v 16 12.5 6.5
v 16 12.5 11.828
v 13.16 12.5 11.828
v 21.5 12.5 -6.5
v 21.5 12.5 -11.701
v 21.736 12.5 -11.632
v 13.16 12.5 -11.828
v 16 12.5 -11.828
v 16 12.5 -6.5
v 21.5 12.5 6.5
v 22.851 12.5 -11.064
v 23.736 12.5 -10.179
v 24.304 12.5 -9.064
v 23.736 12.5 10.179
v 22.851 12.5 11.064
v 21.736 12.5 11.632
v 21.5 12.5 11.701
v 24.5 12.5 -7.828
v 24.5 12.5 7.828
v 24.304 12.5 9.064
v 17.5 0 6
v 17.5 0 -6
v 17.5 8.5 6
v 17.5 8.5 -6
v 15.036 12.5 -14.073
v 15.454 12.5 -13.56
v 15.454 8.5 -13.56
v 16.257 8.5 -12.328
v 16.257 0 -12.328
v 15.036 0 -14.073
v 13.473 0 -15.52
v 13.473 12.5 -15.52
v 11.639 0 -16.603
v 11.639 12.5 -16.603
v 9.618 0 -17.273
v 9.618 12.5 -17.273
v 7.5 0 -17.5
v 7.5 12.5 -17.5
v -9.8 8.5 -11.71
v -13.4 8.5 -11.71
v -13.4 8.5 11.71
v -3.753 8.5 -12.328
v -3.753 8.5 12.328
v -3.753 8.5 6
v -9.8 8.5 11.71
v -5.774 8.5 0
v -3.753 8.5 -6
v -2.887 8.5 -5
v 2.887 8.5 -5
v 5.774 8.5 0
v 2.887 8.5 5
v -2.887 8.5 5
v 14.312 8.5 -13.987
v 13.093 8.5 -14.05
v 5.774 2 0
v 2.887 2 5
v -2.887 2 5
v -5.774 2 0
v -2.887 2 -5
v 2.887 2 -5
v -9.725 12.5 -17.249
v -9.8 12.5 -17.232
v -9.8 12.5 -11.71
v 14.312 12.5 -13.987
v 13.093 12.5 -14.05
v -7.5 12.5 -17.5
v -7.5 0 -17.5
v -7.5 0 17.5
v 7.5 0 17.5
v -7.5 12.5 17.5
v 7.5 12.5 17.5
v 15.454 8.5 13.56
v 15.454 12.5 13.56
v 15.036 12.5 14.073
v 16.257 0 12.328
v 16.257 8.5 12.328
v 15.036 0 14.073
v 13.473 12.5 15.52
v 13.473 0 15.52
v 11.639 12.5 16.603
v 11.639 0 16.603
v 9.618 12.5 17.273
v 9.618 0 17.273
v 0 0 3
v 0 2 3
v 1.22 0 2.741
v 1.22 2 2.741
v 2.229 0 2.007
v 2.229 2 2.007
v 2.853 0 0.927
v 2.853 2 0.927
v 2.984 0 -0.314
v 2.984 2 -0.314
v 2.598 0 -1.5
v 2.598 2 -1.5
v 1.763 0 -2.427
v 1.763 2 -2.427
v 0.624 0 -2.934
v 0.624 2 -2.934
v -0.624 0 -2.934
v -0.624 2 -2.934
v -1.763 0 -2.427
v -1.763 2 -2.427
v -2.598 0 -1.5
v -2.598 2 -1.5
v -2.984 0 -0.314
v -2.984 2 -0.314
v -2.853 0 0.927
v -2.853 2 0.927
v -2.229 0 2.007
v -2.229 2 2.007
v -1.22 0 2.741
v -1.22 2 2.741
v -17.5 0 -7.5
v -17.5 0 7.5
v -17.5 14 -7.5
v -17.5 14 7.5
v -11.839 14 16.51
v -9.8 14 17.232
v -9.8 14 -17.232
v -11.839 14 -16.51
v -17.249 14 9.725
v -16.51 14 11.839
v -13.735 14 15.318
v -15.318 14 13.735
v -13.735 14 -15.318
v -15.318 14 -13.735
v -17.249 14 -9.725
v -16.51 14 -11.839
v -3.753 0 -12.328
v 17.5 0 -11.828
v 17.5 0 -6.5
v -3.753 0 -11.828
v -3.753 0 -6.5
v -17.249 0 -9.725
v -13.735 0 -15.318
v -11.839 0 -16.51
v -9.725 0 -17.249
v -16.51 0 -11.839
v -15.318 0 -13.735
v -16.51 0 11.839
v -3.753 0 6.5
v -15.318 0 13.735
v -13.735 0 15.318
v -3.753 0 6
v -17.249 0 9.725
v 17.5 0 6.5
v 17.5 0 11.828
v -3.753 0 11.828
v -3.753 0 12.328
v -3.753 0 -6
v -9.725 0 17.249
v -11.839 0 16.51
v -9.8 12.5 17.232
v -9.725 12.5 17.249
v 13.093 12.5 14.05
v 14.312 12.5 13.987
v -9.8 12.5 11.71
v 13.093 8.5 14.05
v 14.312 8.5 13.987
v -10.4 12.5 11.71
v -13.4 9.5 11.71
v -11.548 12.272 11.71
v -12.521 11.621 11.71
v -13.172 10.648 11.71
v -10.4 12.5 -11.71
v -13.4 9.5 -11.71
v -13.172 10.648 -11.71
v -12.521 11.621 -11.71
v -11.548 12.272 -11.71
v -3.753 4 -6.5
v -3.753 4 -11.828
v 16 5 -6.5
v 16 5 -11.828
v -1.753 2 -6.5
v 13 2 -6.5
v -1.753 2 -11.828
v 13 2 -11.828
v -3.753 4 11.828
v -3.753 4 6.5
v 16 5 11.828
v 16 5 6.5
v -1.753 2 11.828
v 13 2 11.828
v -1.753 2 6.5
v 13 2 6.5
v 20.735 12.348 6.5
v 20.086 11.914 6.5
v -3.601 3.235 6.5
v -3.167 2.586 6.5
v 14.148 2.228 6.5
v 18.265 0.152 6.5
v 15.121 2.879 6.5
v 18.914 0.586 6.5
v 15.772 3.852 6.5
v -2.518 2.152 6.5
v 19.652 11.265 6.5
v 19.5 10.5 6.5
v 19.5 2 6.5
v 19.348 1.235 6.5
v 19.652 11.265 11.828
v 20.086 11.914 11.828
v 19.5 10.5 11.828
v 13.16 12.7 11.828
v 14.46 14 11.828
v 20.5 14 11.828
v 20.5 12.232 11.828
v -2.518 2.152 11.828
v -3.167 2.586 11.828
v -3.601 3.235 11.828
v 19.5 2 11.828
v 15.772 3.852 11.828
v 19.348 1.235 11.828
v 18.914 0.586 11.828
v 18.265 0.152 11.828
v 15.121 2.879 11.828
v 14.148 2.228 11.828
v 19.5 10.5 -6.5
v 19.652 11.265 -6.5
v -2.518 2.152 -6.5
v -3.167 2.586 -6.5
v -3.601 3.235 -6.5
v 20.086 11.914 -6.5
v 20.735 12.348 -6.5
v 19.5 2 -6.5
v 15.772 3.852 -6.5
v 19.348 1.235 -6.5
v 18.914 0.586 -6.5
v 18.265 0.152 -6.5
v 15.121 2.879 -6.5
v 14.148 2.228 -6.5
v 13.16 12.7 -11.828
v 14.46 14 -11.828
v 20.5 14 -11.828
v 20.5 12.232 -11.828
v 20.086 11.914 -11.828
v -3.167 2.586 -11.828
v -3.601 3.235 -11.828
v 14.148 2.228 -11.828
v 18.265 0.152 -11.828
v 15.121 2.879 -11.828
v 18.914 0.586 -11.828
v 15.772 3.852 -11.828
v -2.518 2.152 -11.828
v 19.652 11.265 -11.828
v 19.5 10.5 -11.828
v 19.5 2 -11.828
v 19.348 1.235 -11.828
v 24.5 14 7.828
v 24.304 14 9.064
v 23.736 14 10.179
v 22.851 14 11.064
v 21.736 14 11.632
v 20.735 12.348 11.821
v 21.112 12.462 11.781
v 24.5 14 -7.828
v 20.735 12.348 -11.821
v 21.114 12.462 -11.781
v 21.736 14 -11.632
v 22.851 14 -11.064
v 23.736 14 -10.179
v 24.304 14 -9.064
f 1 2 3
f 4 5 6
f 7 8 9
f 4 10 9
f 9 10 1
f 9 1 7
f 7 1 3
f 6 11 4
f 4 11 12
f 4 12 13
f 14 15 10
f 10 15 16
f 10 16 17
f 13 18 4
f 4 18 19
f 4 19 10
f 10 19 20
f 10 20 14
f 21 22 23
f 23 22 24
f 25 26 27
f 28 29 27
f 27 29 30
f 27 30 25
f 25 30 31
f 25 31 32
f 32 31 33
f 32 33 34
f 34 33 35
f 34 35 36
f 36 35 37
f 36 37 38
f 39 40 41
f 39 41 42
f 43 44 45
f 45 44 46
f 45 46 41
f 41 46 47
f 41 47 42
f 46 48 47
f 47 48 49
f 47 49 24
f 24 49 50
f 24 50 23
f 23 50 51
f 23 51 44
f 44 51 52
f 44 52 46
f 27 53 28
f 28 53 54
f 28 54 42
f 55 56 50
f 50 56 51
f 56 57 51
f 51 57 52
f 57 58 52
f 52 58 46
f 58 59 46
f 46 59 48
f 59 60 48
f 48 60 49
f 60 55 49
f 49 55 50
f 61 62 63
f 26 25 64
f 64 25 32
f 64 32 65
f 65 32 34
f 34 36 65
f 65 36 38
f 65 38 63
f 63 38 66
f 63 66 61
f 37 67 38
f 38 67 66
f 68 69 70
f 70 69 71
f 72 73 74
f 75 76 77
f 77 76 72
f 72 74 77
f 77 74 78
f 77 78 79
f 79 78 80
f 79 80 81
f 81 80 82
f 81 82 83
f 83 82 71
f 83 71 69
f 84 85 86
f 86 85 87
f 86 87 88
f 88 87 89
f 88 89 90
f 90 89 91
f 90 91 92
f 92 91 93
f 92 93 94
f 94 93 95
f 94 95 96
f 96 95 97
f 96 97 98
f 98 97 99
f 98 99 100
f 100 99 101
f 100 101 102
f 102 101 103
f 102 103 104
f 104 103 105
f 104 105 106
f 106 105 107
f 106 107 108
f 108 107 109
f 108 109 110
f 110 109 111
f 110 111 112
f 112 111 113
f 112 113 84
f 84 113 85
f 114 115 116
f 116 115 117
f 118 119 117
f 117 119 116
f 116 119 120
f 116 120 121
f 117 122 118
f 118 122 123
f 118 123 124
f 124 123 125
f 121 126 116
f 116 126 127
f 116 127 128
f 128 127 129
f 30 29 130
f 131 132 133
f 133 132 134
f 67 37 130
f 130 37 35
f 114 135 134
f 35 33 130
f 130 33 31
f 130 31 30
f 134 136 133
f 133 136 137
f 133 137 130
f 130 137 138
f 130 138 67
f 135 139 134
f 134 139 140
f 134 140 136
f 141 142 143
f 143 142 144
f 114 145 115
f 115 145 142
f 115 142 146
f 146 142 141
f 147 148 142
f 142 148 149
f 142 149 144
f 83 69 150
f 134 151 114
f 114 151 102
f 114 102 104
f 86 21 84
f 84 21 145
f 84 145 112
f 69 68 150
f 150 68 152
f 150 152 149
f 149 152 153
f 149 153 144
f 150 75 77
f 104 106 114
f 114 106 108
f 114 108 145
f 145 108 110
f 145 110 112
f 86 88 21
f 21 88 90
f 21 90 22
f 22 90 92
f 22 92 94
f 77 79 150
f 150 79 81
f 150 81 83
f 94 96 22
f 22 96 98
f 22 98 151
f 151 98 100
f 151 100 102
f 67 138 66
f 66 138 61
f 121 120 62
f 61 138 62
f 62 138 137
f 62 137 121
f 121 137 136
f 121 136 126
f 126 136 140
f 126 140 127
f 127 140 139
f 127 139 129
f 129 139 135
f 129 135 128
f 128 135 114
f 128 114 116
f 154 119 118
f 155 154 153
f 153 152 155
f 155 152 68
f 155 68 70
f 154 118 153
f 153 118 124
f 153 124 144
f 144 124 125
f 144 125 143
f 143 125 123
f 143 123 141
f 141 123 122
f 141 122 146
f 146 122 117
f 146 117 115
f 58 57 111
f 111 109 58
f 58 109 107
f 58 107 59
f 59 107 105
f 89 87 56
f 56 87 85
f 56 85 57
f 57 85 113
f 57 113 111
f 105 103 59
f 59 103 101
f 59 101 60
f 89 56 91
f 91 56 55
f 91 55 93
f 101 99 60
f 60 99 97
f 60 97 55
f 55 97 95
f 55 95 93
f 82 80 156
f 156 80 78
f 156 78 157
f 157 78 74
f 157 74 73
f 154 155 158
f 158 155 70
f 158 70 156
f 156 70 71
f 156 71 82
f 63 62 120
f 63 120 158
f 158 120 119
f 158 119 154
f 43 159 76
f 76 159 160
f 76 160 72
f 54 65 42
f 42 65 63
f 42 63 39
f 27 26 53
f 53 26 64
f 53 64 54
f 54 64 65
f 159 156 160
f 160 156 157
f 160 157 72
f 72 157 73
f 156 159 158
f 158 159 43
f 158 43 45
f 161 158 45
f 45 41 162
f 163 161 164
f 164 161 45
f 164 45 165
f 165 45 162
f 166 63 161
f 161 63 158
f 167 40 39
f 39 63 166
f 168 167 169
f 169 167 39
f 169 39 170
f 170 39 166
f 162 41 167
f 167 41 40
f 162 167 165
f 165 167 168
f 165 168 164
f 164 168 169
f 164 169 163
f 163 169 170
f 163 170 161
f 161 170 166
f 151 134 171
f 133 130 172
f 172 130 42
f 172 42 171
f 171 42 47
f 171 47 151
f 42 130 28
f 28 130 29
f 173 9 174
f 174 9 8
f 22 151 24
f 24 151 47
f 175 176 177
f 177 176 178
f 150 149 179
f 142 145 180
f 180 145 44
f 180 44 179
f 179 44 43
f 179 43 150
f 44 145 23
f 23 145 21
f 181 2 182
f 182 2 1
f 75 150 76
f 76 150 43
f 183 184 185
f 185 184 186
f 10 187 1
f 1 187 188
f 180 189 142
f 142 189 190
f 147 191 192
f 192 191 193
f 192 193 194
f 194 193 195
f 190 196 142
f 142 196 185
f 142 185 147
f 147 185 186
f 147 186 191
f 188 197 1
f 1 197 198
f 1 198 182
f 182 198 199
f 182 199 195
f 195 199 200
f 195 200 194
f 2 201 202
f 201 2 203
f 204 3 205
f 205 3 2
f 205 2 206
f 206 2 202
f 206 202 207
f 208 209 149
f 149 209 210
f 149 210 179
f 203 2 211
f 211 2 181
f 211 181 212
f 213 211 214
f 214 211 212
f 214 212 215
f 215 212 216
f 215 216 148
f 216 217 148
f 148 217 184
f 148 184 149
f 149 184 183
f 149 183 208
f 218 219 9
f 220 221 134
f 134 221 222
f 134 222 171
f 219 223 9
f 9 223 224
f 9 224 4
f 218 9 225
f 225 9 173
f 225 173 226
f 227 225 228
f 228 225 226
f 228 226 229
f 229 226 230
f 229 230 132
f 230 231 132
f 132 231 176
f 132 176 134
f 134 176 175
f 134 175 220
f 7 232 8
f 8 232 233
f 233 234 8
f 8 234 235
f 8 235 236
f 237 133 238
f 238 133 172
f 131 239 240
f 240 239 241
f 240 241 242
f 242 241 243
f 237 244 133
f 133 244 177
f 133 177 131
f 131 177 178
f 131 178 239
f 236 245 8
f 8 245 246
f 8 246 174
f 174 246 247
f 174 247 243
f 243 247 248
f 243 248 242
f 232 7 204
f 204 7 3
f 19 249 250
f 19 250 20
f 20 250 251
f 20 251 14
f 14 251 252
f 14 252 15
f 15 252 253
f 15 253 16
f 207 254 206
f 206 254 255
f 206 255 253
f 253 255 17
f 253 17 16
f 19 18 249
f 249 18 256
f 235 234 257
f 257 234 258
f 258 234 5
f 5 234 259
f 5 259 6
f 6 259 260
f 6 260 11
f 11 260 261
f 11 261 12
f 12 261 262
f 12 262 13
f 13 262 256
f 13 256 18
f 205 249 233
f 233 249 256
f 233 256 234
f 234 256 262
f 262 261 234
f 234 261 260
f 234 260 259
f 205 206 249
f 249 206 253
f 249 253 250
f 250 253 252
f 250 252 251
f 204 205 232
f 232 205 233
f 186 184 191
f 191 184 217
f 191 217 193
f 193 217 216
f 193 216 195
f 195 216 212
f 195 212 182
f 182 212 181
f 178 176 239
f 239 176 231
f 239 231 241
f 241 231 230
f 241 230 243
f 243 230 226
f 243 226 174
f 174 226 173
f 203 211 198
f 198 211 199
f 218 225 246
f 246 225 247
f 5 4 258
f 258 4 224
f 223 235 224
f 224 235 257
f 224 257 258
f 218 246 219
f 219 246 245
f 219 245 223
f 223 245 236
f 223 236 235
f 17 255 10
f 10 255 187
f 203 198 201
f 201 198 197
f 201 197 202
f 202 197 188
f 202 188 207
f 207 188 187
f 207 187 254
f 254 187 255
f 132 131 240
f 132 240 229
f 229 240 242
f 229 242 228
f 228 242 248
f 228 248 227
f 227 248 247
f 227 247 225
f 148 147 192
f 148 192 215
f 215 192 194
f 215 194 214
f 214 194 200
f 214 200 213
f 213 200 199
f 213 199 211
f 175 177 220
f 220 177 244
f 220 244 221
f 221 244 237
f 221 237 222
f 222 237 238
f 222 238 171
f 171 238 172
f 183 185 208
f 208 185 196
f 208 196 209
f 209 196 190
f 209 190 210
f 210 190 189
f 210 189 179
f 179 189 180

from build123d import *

# Parameters (mm, degrees)
ESQUISSE1_W                    = 35
ESQUISSE1_H                    = 35
BOSS_EXTRU_1_DEPTH             = 14
CONG_1_R                       = 10
ESQUISSE2_R                    = 3
ENL_V_MAT_EXTRU_1_DEPTH        = 29.434134416
ENL_V_MAT_EXTRU_2_DEPTH        = 12
ESQUISSE4_W                    = 31.334316994
ESQUISSE4_H                    = 39.173265385
ENL_V_MAT_EXTRU_3_DEPTH        = 1.5
ENL_V_MAT_EXTRU_4_DEPTH        = 4
ESQUISSE6_W                    = 23.42
ESQUISSE6_H                    = 4
ENL_V_MAT_EXTRU_5_DEPTH        = 3.6
CONG_2_R                       = 3
ESQUISSE7_W                    = 19.75277675
ESQUISSE7_H                    = 6.328012926
ENL_V_MAT_EXTRU_6_DEPTH        = 6.5
ENL_V_MAT_EXTRU_7_DEPTH        = 28.504545079
ENL_V_MAT_EXTRU_7_DEPTH_BACK   = 28.504545079
ESQUISSE8_W                    = 25.702062378
ESQUISSE8_H                    = 0.5
ESQUISSE8_W_2                  = 29.01148979
ESQUISSE8_W_3                  = 33.519235733
BOSS_EXTRU_2_START             = 4
BOSS_EXTRU_2_DEPTH             = 4
BOSS_EXTRU_3_DEPTH             = 1.5
CHANFREIN1_SIZE                = 1.3
CONG_3_R                       = 3
BOSS_EXTRU_4_REACH             = 43.56
ESQUISSE11_W                   = 5.328012926
ESQUISSE11_H                   = 12.5
BOSS_EXTRU_4_DIRECTION_2_DEPTH = 2
CONG_4_R                       = 2
CONG_5_R                       = 2


with BuildPart() as part:
    # Esquisse1 → Boss.-Extru.1 (new body)
    with BuildSketch(Plane(origin=(0, 0, 0), x_dir=(1, 0, 0), z_dir=(0, 1, 0))):
        Rectangle(ESQUISSE1_W, ESQUISSE1_H)
    extrude(amount=BOSS_EXTRU_1_DEPTH)

    # Congé1
    cong_1_edges = [part.edges().sort_by_distance(p)[0] for p in [
        (17.5, 7, 17.5),
        (-17.5, 7, 17.5),
        (-17.5, 7, -17.5),
        (17.5, 7, -17.5),
    ]]
    fillet(cong_1_edges, radius=CONG_1_R)

    # Esquisse2 → Enlèv. mat.-Extru.1 (cut, through all)
    with BuildSketch(Plane(origin=(0, 14, 0), x_dir=(1, 0, 0), z_dir=(0, 1, 0))):
        with Locations(Location((0, 0, 0), (0, 0, 270))):
            Circle(ESQUISSE2_R)
    extrude(amount=-ENL_V_MAT_EXTRU_1_DEPTH, mode=Mode.SUBTRACT)

    # Esquisse3 → Enlèv. mat.-Extru.2 (cut)
    with BuildSketch(Plane(origin=(0, 14, 0), x_dir=(1, 0, 0), z_dir=(0, 1, 0))):
        Polygon((5.773502692, 0), (2.886751346, 5), (-2.886751346, 5), (-5.773502692, 0), (-2.886751346, -5), (2.886751346, -5), align=None)
    extrude(amount=-ENL_V_MAT_EXTRU_2_DEPTH, mode=Mode.SUBTRACT)

    # Esquisse4 → Enlèv. mat.-Extru.3 (cut)
    with BuildSketch(Plane(origin=(0, 14, 0), x_dir=(1, 0, 0), z_dir=(0, 1, 0))):
        with Locations((5.867158497, -0.053691428)):
            Rectangle(ESQUISSE4_W, ESQUISSE4_H)
    extrude(amount=-ENL_V_MAT_EXTRU_3_DEPTH, mode=Mode.SUBTRACT)

    # Esquisse5 → Enlèv. mat.-Extru.4 (cut)
    with BuildSketch(Plane(origin=(0, 12.5, 0), x_dir=(1, 0, 0), z_dir=(0, 1, 0))):
        with BuildLine():
            Line((-9.8, 11.71), (-9.8, -11.71))
            Line((-9.8, -11.71), (13.093327001, -14.049647704))
            ThreePointArc((13.093327001, -14.049647704), (16.180793539, -13.03910228), (17.5, -10.070374269))
            Line((17.5, -10.070374269), (17.5, 10.070374269))
            ThreePointArc((17.5, 10.070374269), (16.180793539, 13.03910228), (13.093327001, 14.049647704))
            Line((13.093327001, 14.049647704), (-9.8, 11.71))
        make_face()
    extrude(amount=-ENL_V_MAT_EXTRU_4_DEPTH, mode=Mode.SUBTRACT)

    # Esquisse6 → Enlèv. mat.-Extru.5 (cut)
    with BuildSketch(Plane(origin=(-9.8, 0, 0), x_dir=(0, 0, -1), z_dir=(1, 0, 0))):
        with Locations((0, 10.5)):
            Rectangle(ESQUISSE6_W, ESQUISSE6_H)
    extrude(amount=-ENL_V_MAT_EXTRU_5_DEPTH, mode=Mode.SUBTRACT)

    # Congé2
    cong_2_edges = [part.edges().sort_by_distance(p)[0] for p in [
        (-13.4, 12.5, 0),
    ]]
    fillet(cong_2_edges, radius=CONG_2_R)

    # Esquisse7 → Enlèv. mat.-Extru.6 (cut)
    with BuildSketch(Plane(origin=(0, 8.5, 0), x_dir=(1, 0, 0), z_dir=(0, 1, 0))):
        with Locations((6.123611625, -9.164006463)):
            Rectangle(ESQUISSE7_W, ESQUISSE7_H)
        with Locations((6.123611625, 9.164006463)):
            Rectangle(ESQUISSE7_W, ESQUISSE7_H)
    extrude(amount=-ENL_V_MAT_EXTRU_6_DEPTH, mode=Mode.SUBTRACT)

    # Esquisse8 → Enlèv. mat.-Extru.7 (cut, two sides: drawn at the far end of the back side and taken through both)
    with BuildSketch(Plane(origin=(0, 2, 0), x_dir=(1, 0, 0), z_dir=(0, 1, 0)).offset(-ENL_V_MAT_EXTRU_7_DEPTH_BACK)):
        with Locations((9.098254439, 6.25)):
            Rectangle(ESQUISSE8_W, ESQUISSE8_H)
        with Locations((9.098254439, 12.078012926)):
            Rectangle(ESQUISSE8_W, ESQUISSE8_H)
        with Locations((10.752968145, -6.25)):
            Rectangle(ESQUISSE8_W_2, ESQUISSE8_H)
        with Locations((13.006841117, -12.078012926)):
            Rectangle(ESQUISSE8_W_3, ESQUISSE8_H)
    extrude(amount=ENL_V_MAT_EXTRU_7_DEPTH + ENL_V_MAT_EXTRU_7_DEPTH_BACK, mode=Mode.SUBTRACT)

    # Esquisse9 → Boss.-Extru.2 (add)
    with BuildSketch(Plane(origin=(0, 8.5, 0), x_dir=(1, 0, 0), z_dir=(0, 1, 0)).offset(BOSS_EXTRU_2_START)):
        with BuildLine():
            Line((17.5, -7.5), (17.5, -6.5))
            Line((17.5, -6.5), (16, -6.5))
            Line((16, -6.5), (16, -11.828012926))
            Line((16, -11.828012926), (16.514893461, -11.828012926))
            ThreePointArc((16.514893461, -11.828012926), (17.250613689, -9.719354116), (17.5, -7.5))
        make_face()
        with BuildLine():
            Line((17.5, 6.5), (17.5, 7.5))
            ThreePointArc((17.5, 7.5), (17.250613689, 9.719354116), (16.514893461, 11.828012926))
            Line((16.514893461, 11.828012926), (16, 11.828012926))
            Line((16, 11.828012926), (16, 6.5))
            Line((16, 6.5), (17.5, 6.5))
        make_face()
    extrude(amount=-BOSS_EXTRU_2_DEPTH)

    # Esquisse10 → Boss.-Extru.3 (add)
    with BuildSketch(Plane(origin=(0, 12.5, 0), x_dir=(1, 0, 0), z_dir=(0, 1, 0))):
        with BuildLine():
            Line((13.16, 11.828012926), (20.5, 11.828012926))
            ThreePointArc((20.5, 11.828012926), (23.328427125, 10.65644005), (24.5, 7.828012926))
            Line((24.5, 7.828012926), (24.5, -7.828012926))
            ThreePointArc((24.5, -7.828012926), (23.328427125, -10.65644005), (20.5, -11.828012926))
            Line((20.5, -11.828012926), (13.16, -11.828012926))
            Line((13.16, -11.828012926), (13.16, 11.828012926))
        make_face()
    extrude(amount=BOSS_EXTRU_3_DEPTH)

    # Chanfrein1
    chanfrein1_edges = [part.edges().sort_by_distance(p)[0] for p in [
        (13.16, 14, 0),
    ]]
    chamfer(chanfrein1_edges, length=CHANFREIN1_SIZE)

    # Congé3
    cong_3_edges = [part.edges().sort_by_distance(p)[0] for p in [
        (16, 2, 9.164006463),
        (16, 2, -9.164006463),
    ]]
    fillet(cong_3_edges, radius=CONG_3_R)

    # Esquisse11 → Boss.-Extru.4 (add, up to next)
    with BuildSketch(Plane(origin=(17.5, 0, 0), x_dir=(0, 0, -1), z_dir=(1, 0, 0)), mode=Mode.PRIVATE) as boss_extru_4_sk1:
        with Locations((-9.164006463, 6.25)):
            Rectangle(ESQUISSE11_W, ESQUISSE11_H)
    boss_extru_4_tool1 = extrude(boss_extru_4_sk1.sketch, amount=-BOSS_EXTRU_4_REACH, mode=Mode.PRIVATE) - part.part
    # Esquisse11 → Boss.-Extru.4 (add, up to next)
    with BuildSketch(Plane(origin=(17.5, 0, 0), x_dir=(0, 0, -1), z_dir=(1, 0, 0)), mode=Mode.PRIVATE) as boss_extru_4_sk2:
        with Locations((9.164006463, 6.25)):
            Rectangle(ESQUISSE11_W, ESQUISSE11_H)
    boss_extru_4_tool2 = extrude(boss_extru_4_sk2.sketch, amount=-BOSS_EXTRU_4_REACH, mode=Mode.PRIVATE) - part.part
    add(boss_extru_4_tool1.solids().sort_by_distance((17.5, 6.25, 9.164006))[0])
    add(boss_extru_4_tool2.solids().sort_by_distance((17.5, 6.25, -9.164006))[0])

    # Esquisse11 → Boss.-Extru.4 direction 2 (add)
    with BuildSketch(Plane(origin=(17.5, 0, 0), x_dir=(0, 0, -1), z_dir=(1, 0, 0))):
        with Locations((-9.164006463, 6.25)):
            Rectangle(ESQUISSE11_W, ESQUISSE11_H)
        with Locations((9.164006463, 6.25)):
            Rectangle(ESQUISSE11_W, ESQUISSE11_H)
    extrude(amount=BOSS_EXTRU_4_DIRECTION_2_DEPTH)

    # Congé4
    cong_4_edges = [part.edges().sort_by_distance(p)[0] for p in [
        (19.5, 12.5, -9.164006463),
        (19.5, 12.5, 9.164006463),
        (19.5, 0, -9.164006463),
        (19.5, 0, 9.164006463),
    ]]
    fillet(cong_4_edges, radius=CONG_4_R)

    # Congé5
    cong_5_edges = [part.edges().sort_by_distance(p)[0] for p in [
        (-3.75277675, 2, 9.164006463),
        (-3.75277675, 2, -9.164006463),
    ]]
    fillet(cong_5_edges, radius=CONG_5_R)


solid = part.part
